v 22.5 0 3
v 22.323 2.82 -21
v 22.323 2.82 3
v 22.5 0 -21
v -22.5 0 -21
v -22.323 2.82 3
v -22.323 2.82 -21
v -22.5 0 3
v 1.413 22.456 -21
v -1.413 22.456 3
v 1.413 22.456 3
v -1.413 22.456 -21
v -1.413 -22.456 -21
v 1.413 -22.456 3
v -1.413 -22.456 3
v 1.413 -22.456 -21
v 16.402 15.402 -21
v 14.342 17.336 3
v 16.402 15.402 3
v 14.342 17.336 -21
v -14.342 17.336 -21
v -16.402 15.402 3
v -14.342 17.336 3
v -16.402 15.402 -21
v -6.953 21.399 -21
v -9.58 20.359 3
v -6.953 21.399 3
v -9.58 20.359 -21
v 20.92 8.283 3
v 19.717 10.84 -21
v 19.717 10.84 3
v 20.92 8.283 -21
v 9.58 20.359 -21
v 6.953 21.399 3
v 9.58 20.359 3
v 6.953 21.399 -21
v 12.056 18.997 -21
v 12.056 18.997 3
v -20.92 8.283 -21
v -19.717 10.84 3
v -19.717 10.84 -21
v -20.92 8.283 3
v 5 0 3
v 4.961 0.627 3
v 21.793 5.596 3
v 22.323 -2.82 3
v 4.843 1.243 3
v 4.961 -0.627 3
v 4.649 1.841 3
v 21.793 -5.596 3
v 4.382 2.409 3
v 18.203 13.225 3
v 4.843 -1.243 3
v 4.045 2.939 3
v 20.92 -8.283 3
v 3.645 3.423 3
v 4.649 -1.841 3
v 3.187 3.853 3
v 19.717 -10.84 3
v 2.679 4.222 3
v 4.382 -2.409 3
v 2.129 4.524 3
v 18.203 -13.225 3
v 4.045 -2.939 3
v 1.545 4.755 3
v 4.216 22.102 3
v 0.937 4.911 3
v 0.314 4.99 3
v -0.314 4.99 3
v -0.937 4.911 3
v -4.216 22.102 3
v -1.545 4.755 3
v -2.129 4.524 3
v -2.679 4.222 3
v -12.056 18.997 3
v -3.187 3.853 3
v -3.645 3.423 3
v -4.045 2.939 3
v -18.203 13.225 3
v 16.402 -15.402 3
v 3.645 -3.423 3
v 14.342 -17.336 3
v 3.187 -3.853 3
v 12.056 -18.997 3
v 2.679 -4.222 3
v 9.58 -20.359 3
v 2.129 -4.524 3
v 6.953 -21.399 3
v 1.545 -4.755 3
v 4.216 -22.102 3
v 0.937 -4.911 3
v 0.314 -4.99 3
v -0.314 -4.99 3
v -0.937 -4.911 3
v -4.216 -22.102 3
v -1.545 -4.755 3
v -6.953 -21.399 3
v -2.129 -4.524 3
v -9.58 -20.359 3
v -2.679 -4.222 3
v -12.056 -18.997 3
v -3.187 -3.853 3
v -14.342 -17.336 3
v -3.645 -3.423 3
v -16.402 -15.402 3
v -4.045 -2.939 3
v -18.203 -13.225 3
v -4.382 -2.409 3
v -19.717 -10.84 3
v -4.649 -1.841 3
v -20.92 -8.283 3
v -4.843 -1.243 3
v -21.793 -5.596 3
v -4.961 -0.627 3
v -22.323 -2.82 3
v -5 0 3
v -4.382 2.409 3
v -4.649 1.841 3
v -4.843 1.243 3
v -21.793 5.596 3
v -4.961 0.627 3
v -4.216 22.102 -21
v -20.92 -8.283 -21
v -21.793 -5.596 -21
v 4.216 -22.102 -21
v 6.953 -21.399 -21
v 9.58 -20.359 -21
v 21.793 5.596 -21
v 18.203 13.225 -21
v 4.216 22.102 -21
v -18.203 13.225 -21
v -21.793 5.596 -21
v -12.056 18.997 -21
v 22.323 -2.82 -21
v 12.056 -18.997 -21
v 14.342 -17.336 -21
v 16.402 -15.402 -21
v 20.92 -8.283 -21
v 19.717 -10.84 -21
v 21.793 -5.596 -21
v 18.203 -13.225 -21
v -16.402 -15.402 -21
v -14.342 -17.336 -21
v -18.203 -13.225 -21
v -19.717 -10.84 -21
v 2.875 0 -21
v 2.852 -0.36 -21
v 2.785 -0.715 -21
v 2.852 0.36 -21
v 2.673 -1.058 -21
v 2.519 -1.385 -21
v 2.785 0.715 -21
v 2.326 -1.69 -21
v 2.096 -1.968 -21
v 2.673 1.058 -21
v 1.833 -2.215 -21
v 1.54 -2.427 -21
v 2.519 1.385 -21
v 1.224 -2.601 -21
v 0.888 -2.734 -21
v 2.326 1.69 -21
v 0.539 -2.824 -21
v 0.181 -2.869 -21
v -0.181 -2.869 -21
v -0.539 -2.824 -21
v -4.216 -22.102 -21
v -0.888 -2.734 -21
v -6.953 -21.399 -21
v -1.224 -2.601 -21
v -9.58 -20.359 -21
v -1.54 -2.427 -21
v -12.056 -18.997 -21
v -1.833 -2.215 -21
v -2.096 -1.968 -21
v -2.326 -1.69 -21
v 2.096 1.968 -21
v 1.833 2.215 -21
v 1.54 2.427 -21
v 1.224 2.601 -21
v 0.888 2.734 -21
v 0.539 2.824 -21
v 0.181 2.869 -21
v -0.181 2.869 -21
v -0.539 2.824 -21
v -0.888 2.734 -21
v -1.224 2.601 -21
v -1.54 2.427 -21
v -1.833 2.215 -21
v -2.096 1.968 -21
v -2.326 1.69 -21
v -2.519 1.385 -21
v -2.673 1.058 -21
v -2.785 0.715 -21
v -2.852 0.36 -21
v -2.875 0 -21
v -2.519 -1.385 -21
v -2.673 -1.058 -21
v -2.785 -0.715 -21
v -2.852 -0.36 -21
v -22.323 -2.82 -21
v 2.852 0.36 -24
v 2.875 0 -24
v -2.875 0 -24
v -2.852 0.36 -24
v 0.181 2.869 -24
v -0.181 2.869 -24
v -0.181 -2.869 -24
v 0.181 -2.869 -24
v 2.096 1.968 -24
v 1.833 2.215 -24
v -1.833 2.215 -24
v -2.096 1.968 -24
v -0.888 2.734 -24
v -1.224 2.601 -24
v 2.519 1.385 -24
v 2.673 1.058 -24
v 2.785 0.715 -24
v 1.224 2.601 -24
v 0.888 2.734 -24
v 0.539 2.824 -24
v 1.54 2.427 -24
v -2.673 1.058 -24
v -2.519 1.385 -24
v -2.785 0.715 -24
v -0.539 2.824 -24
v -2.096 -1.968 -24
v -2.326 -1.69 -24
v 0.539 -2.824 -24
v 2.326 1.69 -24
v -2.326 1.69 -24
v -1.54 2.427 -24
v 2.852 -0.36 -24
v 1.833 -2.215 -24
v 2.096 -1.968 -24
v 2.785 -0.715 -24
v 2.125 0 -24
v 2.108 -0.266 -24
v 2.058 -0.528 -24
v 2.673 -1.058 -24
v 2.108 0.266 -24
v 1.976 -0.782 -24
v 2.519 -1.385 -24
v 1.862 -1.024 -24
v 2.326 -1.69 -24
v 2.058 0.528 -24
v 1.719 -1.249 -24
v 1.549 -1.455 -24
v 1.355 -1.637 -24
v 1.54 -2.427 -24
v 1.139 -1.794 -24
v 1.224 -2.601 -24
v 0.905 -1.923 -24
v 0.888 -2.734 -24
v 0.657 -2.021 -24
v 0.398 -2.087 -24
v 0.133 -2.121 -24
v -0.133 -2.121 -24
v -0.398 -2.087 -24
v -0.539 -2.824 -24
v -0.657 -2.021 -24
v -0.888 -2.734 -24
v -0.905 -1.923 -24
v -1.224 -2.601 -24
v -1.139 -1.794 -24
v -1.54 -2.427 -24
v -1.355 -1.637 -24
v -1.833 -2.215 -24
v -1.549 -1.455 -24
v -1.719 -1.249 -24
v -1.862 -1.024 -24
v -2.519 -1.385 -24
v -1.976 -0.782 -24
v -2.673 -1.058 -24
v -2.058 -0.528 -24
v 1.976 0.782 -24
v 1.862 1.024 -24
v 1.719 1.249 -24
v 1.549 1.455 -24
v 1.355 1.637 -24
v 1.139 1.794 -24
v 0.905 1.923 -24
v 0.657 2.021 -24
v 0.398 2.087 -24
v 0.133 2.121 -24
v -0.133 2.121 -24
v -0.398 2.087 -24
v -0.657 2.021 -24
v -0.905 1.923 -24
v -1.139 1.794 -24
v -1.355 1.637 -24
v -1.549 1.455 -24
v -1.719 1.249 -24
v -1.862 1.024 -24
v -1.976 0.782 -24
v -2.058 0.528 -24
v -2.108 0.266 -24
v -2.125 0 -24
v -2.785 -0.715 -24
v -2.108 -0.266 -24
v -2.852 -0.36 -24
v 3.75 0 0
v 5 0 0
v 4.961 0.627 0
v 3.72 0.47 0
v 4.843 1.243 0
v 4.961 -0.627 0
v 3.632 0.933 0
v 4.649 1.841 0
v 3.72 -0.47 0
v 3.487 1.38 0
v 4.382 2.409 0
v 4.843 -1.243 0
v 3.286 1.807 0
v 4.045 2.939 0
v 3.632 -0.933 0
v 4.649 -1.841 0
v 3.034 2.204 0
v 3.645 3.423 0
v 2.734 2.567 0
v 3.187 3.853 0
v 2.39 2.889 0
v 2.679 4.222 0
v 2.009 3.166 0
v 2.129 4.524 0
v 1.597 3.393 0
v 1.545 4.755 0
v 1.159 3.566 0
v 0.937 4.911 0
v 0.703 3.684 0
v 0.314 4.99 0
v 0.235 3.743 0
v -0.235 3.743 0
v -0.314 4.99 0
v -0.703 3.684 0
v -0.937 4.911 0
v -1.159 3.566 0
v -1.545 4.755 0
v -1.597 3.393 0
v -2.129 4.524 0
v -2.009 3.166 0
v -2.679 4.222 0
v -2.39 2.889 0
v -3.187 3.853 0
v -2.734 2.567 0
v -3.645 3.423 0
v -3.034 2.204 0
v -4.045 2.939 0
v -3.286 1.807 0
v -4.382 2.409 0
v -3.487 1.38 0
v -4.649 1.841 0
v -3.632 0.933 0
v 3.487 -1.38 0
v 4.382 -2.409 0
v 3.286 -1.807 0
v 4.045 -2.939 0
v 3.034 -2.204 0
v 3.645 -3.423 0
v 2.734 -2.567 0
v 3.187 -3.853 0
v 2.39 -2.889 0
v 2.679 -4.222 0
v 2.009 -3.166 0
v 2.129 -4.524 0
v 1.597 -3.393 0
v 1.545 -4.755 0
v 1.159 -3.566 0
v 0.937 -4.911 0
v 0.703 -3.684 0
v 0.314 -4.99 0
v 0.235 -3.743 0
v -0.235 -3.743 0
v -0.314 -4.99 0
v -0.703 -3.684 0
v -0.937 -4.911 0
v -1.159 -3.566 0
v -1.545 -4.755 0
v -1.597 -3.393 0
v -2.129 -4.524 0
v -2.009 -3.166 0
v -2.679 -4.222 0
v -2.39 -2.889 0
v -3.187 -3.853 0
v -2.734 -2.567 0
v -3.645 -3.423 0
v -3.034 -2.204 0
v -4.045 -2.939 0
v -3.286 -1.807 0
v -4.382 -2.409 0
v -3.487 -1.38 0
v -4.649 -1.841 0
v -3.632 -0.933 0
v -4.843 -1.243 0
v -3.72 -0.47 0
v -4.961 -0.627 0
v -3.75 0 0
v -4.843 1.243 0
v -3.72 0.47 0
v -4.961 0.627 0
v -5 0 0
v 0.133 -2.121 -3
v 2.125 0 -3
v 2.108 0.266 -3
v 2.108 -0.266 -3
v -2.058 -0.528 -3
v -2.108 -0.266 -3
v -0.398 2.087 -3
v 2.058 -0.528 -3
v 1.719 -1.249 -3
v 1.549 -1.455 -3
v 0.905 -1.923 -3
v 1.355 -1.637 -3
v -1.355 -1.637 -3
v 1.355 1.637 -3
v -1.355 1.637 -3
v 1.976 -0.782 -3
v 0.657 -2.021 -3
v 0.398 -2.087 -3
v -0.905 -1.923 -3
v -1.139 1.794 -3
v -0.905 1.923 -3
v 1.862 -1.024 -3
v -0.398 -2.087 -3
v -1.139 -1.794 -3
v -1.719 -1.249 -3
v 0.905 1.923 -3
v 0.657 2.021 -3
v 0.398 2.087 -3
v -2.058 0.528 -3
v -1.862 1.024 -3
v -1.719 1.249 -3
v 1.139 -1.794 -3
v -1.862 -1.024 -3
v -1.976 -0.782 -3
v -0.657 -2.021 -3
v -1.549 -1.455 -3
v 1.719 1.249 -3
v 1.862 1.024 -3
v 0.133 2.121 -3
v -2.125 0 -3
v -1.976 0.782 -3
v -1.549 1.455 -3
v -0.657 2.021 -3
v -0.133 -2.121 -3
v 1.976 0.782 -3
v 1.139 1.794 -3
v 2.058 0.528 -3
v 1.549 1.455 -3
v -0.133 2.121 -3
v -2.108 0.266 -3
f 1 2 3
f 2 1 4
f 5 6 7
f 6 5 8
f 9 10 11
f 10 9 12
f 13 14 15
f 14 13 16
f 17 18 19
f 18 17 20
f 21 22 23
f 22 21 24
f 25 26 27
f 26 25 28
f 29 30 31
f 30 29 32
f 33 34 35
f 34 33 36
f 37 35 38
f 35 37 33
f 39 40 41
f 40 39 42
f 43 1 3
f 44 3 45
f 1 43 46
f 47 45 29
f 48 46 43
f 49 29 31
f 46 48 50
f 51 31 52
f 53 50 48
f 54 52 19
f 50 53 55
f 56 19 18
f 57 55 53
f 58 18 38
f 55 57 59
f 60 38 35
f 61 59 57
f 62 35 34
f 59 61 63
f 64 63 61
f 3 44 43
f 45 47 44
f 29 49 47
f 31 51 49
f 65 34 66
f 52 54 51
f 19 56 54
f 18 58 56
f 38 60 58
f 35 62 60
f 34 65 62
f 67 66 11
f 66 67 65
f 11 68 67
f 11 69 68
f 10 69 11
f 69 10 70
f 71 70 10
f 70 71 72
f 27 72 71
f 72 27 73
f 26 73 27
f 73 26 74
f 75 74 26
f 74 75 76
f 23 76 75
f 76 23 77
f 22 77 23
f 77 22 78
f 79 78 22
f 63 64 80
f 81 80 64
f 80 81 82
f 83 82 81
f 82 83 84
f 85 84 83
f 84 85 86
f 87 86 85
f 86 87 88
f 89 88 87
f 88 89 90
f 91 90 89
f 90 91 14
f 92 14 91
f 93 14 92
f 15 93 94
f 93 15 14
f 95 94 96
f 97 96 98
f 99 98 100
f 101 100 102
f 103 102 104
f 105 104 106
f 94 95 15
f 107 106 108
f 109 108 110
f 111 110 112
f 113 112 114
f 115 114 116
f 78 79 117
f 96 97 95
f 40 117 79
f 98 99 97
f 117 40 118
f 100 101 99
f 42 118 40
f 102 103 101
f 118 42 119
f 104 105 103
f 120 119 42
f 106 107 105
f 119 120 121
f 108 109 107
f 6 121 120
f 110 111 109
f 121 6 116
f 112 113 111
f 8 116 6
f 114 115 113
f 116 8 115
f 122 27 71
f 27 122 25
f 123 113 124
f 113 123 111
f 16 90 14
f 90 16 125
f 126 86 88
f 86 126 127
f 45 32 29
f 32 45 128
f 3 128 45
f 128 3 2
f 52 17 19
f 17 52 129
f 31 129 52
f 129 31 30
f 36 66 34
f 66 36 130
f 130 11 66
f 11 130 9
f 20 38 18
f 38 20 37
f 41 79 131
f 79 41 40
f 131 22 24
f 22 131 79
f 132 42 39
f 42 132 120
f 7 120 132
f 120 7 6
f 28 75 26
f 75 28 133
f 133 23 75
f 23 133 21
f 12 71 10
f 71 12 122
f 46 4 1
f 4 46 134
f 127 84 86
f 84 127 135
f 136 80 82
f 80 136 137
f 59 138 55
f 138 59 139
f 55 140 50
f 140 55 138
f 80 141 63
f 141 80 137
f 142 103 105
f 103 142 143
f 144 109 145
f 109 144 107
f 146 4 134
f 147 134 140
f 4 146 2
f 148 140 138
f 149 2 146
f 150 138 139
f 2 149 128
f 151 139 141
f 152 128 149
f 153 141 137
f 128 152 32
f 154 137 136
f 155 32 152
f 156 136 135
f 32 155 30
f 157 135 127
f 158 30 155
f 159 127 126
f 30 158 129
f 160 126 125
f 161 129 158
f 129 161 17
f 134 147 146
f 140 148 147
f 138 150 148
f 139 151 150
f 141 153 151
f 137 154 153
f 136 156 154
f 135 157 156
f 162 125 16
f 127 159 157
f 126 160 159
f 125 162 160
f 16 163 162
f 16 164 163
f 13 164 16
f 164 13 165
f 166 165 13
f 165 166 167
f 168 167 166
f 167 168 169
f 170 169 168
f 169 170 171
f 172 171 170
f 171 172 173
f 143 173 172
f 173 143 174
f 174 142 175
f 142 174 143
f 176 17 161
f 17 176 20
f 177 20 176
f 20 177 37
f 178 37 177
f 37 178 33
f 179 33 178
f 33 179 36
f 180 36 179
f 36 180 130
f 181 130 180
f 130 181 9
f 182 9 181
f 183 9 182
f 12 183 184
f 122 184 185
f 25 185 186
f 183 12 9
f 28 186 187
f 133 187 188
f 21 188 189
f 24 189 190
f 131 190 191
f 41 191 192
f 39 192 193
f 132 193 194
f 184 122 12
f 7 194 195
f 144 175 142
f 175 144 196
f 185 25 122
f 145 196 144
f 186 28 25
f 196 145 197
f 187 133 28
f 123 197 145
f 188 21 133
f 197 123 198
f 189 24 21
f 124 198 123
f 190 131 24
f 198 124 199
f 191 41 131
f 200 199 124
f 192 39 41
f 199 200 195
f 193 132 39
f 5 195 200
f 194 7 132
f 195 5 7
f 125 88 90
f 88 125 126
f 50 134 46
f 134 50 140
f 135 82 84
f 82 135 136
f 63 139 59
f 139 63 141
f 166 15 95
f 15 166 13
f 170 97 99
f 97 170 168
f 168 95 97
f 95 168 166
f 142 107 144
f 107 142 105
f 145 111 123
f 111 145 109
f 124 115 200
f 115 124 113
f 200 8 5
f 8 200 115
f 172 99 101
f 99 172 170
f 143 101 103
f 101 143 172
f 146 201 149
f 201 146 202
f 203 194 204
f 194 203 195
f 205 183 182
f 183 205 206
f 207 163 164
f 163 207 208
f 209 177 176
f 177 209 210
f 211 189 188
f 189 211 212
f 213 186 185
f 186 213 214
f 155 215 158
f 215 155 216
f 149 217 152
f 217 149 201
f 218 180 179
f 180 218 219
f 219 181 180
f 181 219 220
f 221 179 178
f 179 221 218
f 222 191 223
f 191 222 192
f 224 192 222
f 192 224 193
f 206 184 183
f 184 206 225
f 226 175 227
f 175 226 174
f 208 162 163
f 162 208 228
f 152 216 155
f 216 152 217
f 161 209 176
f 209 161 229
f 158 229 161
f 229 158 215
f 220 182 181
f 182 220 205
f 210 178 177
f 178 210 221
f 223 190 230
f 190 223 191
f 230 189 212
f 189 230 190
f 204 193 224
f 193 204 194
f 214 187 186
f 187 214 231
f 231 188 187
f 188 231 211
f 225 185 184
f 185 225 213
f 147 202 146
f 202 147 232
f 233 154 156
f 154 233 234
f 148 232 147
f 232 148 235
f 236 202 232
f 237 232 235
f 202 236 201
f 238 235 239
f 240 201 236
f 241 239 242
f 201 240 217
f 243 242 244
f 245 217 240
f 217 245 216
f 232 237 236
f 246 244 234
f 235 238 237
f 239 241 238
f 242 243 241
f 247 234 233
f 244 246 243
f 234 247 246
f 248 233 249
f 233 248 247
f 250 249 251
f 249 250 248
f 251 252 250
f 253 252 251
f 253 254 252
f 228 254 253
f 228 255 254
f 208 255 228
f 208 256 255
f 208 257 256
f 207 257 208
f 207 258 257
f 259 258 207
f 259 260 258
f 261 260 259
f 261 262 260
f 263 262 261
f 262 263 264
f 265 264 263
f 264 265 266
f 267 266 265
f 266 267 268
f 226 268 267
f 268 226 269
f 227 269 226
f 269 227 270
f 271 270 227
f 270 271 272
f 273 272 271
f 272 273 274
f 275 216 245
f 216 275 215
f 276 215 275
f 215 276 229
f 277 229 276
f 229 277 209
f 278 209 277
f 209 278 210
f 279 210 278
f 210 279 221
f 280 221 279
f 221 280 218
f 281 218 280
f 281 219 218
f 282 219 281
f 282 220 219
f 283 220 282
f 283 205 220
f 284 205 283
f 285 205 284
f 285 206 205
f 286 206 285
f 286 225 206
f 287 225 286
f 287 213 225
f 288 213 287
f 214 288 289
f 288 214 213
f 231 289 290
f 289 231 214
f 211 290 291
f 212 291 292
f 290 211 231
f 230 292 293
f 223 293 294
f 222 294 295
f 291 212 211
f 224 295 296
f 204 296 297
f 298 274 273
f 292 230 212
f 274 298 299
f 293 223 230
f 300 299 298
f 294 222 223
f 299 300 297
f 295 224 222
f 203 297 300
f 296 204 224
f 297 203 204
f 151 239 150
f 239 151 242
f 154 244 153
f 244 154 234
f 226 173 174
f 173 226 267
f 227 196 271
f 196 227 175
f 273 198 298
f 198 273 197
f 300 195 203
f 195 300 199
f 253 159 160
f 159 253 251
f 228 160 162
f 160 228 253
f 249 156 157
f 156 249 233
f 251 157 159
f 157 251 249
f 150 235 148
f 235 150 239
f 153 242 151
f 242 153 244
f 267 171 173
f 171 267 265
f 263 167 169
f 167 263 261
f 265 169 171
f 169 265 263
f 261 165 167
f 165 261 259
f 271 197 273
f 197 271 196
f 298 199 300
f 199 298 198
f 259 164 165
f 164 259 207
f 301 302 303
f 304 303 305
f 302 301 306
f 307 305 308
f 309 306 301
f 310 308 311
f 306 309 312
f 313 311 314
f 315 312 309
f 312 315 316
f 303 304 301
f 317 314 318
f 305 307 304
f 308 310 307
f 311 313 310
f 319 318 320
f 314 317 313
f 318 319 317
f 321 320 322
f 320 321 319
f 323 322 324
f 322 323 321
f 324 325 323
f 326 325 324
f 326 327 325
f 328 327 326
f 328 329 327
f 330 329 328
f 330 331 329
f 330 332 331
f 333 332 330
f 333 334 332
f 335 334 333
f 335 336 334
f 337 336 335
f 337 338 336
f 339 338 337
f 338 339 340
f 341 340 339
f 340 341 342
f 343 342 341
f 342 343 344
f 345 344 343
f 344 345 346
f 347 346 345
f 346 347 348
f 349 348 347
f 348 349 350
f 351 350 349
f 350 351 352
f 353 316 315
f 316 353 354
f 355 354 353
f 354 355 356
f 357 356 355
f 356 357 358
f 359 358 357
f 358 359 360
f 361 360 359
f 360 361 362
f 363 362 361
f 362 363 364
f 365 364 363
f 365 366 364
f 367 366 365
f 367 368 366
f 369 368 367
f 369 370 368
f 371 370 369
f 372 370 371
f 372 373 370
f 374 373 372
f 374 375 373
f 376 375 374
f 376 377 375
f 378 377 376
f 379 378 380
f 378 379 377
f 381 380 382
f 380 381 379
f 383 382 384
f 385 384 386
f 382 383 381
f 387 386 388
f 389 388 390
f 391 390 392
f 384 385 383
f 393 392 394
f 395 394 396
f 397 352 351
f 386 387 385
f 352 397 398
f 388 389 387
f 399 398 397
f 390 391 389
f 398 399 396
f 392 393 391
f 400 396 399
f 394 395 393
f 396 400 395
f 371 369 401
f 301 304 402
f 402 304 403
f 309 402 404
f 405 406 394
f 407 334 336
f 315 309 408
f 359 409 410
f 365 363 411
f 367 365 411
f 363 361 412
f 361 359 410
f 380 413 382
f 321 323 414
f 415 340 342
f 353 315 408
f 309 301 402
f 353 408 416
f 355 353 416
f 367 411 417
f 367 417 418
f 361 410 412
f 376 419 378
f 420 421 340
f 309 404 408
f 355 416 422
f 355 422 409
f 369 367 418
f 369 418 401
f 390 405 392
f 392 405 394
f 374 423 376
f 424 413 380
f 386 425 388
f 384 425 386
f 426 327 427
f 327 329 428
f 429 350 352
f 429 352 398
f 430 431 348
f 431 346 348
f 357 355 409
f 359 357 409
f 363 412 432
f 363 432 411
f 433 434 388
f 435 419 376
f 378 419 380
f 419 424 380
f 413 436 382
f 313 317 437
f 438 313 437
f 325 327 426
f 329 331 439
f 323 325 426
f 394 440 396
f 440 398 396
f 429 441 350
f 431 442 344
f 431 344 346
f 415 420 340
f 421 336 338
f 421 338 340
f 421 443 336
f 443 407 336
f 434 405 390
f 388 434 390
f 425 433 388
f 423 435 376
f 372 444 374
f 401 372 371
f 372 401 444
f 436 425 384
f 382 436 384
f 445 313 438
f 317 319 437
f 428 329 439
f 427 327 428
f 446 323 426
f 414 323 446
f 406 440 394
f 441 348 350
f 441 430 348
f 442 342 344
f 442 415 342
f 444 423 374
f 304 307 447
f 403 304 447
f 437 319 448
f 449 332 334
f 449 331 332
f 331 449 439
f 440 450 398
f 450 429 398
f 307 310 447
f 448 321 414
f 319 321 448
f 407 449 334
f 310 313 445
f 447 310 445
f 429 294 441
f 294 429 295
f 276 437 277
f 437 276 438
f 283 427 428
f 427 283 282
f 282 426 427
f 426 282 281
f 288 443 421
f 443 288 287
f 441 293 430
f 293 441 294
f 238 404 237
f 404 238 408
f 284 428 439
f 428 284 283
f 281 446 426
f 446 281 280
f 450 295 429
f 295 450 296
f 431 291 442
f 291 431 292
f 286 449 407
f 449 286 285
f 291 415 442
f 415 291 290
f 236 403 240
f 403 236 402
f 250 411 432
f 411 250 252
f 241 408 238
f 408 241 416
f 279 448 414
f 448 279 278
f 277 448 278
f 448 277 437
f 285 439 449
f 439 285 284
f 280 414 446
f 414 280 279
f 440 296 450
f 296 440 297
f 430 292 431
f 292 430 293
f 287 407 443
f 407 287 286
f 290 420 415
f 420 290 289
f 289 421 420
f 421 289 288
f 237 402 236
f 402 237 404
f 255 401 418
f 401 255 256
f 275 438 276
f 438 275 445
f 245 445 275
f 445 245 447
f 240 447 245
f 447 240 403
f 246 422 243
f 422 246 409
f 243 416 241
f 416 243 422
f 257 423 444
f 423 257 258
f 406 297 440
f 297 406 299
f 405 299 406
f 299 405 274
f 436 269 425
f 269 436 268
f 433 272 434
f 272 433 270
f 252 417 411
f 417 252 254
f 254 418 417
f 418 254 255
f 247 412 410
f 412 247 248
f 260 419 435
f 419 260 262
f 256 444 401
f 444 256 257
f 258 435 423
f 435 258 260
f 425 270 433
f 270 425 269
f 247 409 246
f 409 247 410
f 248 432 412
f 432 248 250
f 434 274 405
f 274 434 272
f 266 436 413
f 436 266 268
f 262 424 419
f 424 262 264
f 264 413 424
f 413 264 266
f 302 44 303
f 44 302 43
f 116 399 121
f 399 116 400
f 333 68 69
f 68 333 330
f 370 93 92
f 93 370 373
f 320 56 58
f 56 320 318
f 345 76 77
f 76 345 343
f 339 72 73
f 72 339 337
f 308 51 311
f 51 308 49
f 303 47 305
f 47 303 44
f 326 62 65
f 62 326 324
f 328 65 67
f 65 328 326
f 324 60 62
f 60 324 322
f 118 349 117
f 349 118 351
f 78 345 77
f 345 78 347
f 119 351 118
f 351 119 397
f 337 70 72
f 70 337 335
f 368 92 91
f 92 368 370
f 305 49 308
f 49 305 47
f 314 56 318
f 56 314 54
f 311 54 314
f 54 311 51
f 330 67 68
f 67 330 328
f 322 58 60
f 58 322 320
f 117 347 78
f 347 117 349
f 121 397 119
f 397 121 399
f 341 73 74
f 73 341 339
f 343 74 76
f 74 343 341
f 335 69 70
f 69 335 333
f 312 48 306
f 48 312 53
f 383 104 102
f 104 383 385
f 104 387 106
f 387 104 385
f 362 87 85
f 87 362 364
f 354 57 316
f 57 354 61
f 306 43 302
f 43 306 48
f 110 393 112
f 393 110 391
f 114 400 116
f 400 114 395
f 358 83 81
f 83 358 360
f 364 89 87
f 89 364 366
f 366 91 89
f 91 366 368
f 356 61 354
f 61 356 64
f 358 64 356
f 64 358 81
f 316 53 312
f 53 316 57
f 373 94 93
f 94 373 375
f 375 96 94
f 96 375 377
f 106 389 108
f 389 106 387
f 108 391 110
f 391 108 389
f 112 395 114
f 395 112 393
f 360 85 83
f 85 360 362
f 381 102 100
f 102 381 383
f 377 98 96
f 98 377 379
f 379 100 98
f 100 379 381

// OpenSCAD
$fn = 50;

difference() {
	union() {
		translate(v = [0, 0, -21.0]) {
			cylinder(h = 24, r = 22.5);
		}
		#translate(v = [0, 0, -24.0]) {
			cylinder(h = 24, r = 2.875);
		}
	}
	union() {
		translate(v = [0, 0, 0]) {
			rotate(a = [0, 0, 0]) {
				difference() {
					union() {
						translate(v = [0, 0, -24.0]) {
							cylinder(h = 24, r = 2.0);
						}
						translate(v = [0, 0, -3]) {
							cylinder(h = 3, r1 = 2.125, r2 = 3.75);
						}
						translate(v = [0, 0, -24.0]) {
							cylinder(h = 24, r = 2.125);
						}
						translate(v = [0, 0, -24.0]) {
							cylinder(h = 24, r = 2.0);
						}
					}
					union();
				}
			}
		}
		#cylinder(h = 3, r = 5.0);
	}
}
